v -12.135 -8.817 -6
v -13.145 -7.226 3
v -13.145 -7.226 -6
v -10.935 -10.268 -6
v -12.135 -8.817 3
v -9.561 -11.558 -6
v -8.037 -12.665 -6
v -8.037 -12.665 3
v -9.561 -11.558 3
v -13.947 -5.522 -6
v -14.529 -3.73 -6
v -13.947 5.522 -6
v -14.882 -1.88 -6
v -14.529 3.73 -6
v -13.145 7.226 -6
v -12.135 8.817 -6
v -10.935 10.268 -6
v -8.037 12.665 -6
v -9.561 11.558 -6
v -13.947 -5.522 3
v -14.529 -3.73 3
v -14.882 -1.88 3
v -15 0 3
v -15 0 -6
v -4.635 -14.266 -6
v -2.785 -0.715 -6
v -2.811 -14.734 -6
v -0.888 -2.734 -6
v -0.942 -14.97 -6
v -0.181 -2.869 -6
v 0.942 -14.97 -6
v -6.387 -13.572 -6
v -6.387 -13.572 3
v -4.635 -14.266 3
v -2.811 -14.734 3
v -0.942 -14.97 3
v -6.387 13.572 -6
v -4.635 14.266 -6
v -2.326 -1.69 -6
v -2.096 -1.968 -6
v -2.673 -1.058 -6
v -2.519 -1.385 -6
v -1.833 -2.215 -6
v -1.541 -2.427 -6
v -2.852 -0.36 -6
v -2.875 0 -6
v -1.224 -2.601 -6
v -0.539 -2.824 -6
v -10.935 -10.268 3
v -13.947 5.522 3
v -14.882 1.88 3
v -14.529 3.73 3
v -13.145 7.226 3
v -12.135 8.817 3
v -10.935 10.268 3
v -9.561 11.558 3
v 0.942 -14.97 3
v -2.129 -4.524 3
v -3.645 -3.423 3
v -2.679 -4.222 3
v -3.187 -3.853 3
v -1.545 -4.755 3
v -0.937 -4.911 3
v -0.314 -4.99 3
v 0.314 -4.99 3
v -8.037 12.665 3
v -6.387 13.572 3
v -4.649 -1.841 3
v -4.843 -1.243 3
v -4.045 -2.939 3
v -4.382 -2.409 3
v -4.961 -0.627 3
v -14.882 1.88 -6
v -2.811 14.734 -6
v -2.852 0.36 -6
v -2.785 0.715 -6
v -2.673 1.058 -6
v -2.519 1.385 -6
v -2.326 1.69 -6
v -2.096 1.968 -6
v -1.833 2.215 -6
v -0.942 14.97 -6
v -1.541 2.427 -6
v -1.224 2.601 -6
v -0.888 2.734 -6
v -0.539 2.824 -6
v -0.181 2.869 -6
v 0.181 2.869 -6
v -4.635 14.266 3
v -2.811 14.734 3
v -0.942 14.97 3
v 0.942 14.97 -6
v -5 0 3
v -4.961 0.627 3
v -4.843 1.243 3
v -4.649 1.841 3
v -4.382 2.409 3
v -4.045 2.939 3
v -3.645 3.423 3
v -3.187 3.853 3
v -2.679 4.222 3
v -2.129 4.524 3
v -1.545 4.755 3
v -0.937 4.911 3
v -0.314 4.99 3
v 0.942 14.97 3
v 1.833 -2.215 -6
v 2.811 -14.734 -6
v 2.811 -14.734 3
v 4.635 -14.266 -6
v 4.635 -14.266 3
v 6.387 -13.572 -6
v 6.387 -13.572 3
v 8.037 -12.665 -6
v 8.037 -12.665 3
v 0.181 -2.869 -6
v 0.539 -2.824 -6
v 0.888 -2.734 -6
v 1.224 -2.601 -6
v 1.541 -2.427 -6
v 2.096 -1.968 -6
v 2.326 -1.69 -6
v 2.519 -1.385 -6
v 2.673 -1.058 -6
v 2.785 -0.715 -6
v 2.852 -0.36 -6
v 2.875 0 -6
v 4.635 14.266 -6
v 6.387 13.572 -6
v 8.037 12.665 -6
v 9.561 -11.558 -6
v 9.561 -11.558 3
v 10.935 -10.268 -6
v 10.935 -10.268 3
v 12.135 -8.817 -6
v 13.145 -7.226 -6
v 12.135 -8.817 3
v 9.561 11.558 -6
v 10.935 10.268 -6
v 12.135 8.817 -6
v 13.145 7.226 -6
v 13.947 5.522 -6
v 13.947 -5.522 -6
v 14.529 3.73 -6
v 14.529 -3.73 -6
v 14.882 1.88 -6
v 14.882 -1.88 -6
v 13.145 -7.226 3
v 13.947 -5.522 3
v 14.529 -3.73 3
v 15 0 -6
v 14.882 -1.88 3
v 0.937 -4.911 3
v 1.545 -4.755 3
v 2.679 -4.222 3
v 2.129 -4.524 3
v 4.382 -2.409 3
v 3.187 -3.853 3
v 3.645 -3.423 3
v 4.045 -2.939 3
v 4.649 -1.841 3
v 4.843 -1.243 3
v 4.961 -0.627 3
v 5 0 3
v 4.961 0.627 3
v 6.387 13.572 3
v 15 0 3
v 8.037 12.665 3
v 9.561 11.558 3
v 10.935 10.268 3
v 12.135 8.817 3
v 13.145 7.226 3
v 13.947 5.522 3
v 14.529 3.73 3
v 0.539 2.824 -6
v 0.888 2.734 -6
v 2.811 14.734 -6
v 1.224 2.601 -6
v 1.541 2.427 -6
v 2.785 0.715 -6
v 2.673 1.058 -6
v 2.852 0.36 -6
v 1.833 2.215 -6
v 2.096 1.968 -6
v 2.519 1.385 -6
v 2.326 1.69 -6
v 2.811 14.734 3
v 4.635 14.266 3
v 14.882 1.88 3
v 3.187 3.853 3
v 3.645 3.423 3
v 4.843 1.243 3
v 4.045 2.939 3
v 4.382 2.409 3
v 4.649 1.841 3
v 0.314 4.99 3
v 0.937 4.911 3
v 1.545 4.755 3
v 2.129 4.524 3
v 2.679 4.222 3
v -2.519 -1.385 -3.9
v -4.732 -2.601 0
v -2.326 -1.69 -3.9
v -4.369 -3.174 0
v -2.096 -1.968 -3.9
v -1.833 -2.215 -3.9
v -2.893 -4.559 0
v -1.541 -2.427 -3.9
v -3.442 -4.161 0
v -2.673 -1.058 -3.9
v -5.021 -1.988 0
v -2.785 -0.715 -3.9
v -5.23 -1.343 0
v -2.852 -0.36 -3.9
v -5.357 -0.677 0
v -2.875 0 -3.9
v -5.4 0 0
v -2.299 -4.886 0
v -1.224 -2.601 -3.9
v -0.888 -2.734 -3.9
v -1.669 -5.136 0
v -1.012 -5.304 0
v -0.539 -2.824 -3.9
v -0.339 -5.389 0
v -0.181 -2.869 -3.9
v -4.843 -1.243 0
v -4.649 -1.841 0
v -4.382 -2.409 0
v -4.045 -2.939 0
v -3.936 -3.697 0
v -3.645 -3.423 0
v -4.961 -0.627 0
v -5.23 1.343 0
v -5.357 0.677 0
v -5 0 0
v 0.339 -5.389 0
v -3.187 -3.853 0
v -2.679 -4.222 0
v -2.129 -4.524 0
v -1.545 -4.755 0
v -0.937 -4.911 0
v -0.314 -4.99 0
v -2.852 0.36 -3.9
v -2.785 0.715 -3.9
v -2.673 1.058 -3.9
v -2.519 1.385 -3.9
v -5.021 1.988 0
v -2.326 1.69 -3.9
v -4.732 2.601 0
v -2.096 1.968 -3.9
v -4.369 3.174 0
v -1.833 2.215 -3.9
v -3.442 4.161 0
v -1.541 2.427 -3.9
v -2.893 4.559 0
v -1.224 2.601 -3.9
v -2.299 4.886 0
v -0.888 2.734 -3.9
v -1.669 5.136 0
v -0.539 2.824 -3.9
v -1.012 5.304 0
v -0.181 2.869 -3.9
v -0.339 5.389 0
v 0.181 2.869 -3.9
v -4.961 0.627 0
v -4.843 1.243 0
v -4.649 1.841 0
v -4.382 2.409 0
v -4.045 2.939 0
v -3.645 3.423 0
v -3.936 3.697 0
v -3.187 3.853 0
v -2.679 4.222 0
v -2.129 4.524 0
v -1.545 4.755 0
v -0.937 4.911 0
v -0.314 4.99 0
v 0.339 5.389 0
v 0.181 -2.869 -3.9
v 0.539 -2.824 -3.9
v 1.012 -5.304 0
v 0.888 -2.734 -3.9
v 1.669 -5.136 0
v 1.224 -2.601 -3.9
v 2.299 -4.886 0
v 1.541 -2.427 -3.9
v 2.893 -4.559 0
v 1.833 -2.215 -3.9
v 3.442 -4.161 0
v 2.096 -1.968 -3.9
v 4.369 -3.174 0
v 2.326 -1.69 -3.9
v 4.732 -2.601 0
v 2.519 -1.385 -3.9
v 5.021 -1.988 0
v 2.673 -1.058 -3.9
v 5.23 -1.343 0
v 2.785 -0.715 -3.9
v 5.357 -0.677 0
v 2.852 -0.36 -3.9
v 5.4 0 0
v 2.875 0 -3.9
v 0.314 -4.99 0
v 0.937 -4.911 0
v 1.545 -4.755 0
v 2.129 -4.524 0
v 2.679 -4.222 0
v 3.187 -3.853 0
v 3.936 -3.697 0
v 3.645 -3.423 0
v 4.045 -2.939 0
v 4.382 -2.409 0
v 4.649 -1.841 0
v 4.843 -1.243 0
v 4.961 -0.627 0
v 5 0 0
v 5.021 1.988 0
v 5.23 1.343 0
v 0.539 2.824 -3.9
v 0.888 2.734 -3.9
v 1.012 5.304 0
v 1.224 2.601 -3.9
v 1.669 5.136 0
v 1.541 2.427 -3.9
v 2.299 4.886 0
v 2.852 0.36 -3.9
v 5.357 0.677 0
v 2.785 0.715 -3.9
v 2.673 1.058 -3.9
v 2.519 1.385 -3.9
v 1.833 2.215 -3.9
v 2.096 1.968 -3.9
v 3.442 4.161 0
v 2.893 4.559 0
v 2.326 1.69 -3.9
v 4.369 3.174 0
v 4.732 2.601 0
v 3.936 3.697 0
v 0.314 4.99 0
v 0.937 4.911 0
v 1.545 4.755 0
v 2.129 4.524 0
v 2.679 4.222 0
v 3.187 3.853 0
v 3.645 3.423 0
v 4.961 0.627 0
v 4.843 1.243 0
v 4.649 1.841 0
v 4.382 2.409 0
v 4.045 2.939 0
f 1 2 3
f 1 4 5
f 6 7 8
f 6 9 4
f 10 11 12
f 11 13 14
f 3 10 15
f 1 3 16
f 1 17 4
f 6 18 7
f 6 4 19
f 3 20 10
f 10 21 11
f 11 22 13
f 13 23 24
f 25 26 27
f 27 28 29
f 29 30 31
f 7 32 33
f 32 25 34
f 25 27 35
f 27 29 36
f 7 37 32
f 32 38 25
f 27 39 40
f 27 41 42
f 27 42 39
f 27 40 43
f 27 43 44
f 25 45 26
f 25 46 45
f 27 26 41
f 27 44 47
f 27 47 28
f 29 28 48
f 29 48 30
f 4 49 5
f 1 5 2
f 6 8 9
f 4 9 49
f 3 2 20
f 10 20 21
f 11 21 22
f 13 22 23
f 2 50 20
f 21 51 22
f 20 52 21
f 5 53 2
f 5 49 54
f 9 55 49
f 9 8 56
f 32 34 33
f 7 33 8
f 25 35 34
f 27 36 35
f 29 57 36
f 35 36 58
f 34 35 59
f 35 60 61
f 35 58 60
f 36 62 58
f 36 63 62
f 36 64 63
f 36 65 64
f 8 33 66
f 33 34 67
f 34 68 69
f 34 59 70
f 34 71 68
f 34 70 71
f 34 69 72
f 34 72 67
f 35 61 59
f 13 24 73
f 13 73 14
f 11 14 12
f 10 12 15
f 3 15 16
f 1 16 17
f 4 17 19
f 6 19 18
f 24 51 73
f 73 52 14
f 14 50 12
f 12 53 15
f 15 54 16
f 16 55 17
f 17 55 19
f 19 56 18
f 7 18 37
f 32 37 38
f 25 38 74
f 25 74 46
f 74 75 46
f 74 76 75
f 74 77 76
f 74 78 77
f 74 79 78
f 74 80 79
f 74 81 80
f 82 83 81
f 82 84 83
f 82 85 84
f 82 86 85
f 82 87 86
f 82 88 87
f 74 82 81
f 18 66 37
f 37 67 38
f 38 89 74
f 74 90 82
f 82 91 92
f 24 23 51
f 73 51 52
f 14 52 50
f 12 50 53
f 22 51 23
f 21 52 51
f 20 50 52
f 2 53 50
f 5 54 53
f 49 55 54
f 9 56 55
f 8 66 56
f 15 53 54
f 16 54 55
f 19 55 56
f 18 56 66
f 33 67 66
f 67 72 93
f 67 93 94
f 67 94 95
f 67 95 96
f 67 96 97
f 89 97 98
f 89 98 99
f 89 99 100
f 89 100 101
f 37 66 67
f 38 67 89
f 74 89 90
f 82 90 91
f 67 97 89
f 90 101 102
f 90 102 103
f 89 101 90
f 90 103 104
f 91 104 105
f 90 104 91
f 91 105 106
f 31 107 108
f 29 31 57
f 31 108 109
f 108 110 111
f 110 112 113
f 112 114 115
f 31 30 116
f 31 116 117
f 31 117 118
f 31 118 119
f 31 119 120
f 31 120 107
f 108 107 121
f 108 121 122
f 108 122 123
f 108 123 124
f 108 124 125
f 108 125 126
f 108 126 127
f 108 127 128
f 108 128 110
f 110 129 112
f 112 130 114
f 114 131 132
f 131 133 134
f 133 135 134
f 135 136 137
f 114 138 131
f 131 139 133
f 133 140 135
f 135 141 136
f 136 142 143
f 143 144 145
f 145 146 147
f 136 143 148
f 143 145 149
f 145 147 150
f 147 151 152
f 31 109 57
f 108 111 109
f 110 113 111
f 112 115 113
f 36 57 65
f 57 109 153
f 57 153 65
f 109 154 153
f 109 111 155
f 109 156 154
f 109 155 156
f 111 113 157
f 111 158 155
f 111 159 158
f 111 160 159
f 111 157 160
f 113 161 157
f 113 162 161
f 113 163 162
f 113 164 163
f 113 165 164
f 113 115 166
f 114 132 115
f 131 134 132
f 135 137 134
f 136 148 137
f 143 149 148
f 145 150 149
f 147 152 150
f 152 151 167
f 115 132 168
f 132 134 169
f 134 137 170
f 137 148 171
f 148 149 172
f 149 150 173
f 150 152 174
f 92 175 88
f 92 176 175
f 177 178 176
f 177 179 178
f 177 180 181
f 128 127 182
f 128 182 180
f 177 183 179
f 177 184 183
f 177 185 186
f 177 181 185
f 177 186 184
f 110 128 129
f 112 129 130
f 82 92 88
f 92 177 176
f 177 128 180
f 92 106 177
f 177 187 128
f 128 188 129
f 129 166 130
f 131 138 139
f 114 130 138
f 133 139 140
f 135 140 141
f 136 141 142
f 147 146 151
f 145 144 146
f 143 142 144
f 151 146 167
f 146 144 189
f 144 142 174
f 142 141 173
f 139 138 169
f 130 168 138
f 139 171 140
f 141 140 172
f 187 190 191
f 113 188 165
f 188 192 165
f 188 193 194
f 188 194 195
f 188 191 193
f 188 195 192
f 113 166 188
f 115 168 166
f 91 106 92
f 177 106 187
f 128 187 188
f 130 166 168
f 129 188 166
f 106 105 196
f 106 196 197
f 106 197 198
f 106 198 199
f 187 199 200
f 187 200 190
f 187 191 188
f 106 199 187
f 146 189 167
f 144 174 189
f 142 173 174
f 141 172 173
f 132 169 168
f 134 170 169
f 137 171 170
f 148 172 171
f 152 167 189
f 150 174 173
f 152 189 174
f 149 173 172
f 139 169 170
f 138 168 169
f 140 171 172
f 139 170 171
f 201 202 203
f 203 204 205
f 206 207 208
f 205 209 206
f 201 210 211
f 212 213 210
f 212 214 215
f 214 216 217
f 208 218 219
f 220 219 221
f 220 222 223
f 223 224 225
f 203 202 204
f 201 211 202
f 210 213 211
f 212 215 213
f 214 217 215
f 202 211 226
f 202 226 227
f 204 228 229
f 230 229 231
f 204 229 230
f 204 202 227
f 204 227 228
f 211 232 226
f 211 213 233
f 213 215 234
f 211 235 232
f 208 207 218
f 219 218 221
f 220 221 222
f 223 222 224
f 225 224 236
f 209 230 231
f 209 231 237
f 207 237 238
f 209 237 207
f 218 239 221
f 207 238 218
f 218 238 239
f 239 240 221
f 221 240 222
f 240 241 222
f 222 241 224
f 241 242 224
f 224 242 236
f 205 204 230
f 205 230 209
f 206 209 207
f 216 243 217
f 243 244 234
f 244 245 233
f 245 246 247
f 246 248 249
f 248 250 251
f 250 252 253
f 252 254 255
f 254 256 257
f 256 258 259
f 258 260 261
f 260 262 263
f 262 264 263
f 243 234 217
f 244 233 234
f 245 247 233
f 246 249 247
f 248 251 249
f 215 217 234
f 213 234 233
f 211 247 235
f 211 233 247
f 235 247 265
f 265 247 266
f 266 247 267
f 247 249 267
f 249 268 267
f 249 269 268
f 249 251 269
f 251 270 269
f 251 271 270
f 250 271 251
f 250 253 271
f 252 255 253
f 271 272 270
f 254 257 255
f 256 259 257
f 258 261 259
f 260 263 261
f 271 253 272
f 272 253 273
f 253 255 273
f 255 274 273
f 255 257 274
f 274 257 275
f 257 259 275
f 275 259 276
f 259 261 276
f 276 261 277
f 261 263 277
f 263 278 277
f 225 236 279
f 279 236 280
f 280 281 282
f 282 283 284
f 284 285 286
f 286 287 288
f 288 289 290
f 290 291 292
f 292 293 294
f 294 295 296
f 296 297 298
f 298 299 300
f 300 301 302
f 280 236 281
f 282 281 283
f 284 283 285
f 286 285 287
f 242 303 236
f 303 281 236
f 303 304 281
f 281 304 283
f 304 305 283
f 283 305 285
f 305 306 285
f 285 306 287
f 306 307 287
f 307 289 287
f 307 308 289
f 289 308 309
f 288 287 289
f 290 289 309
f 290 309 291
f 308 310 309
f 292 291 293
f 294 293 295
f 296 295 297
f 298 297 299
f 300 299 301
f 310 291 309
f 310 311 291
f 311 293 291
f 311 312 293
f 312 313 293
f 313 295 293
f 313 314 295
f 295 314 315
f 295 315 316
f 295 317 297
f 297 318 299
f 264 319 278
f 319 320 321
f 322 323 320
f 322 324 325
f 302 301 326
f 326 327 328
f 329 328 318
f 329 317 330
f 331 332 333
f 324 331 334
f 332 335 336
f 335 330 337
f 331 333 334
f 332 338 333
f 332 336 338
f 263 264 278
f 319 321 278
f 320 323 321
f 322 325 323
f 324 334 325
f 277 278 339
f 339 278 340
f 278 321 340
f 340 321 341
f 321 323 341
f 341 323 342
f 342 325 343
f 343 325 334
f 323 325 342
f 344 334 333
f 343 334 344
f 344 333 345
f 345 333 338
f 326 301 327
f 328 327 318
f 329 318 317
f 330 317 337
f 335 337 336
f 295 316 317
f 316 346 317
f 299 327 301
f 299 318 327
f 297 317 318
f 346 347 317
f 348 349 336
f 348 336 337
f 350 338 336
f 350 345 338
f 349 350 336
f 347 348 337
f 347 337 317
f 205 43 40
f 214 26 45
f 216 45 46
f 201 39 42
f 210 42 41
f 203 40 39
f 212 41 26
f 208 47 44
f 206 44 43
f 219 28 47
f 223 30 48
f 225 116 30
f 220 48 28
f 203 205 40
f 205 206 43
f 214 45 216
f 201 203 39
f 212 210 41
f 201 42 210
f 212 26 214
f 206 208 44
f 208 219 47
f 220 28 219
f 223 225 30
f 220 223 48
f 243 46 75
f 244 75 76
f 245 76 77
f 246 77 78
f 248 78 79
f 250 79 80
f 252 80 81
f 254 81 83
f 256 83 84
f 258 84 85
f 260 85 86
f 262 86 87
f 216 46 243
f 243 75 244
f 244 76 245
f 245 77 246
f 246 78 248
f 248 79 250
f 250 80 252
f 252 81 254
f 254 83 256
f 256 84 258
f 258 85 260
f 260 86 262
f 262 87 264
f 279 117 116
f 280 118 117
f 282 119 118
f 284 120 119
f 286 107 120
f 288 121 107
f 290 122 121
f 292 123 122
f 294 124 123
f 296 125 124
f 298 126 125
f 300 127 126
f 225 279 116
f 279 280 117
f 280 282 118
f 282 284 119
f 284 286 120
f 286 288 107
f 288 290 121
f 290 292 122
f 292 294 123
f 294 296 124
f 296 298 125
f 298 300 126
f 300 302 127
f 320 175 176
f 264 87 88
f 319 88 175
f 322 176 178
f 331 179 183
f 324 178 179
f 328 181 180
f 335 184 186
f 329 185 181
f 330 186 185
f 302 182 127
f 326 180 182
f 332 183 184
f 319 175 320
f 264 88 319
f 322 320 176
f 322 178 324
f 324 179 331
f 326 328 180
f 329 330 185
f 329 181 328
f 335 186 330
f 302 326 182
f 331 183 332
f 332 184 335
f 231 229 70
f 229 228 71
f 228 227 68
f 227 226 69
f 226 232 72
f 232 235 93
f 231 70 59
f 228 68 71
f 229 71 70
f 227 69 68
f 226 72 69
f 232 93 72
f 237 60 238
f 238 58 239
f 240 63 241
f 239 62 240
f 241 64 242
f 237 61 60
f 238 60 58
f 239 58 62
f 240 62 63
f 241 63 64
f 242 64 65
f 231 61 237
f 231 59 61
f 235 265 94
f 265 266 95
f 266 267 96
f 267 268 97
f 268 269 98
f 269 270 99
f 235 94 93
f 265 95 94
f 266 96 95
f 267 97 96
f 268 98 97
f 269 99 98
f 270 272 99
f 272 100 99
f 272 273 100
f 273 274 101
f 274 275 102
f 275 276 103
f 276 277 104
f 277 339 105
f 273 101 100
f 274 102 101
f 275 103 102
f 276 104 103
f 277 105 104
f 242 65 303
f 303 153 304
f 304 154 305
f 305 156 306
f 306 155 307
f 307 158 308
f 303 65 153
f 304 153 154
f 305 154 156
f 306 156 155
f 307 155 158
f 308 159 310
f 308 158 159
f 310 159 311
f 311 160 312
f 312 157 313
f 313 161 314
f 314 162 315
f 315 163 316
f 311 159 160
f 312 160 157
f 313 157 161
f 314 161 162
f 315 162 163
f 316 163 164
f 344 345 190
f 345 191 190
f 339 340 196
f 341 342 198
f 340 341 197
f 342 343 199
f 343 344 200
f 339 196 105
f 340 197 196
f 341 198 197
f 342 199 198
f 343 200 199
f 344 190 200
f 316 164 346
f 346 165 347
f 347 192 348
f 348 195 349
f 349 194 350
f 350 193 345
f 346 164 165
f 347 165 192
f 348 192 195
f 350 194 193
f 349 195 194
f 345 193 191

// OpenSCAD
$fn = 50;

difference() {
	union() {
		translate(v = [0, 0, -6.0]) {
			cylinder(h = 9, r = 15.0);
		}
		#translate(v = [0, 0, -9.0]) {
			cylinder(h = 9, r = 2.875);
		}
	}
	union() {
		translate(v = [0, 0, 0]) {
			rotate(a = [0, 0, 0]) {
				difference() {
					union() {
						translate(v = [0, 0, -9.0]) {
							cylinder(h = 9, r = 2.6);
						}
						translate(v = [0, 0, -3.9]) {
							cylinder(h = 3.9, r1 = 2.875, r2 = 5.4);
						}
						translate(v = [0, 0, -9.0]) {
							cylinder(h = 9, r = 2.875);
						}
						translate(v = [0, 0, -9.0]) {
							cylinder(h = 9, r = 2.6);
						}
					}
					union();
				}
			}
		}
		#cylinder(h = 3, r = 5.0);
	}
}
